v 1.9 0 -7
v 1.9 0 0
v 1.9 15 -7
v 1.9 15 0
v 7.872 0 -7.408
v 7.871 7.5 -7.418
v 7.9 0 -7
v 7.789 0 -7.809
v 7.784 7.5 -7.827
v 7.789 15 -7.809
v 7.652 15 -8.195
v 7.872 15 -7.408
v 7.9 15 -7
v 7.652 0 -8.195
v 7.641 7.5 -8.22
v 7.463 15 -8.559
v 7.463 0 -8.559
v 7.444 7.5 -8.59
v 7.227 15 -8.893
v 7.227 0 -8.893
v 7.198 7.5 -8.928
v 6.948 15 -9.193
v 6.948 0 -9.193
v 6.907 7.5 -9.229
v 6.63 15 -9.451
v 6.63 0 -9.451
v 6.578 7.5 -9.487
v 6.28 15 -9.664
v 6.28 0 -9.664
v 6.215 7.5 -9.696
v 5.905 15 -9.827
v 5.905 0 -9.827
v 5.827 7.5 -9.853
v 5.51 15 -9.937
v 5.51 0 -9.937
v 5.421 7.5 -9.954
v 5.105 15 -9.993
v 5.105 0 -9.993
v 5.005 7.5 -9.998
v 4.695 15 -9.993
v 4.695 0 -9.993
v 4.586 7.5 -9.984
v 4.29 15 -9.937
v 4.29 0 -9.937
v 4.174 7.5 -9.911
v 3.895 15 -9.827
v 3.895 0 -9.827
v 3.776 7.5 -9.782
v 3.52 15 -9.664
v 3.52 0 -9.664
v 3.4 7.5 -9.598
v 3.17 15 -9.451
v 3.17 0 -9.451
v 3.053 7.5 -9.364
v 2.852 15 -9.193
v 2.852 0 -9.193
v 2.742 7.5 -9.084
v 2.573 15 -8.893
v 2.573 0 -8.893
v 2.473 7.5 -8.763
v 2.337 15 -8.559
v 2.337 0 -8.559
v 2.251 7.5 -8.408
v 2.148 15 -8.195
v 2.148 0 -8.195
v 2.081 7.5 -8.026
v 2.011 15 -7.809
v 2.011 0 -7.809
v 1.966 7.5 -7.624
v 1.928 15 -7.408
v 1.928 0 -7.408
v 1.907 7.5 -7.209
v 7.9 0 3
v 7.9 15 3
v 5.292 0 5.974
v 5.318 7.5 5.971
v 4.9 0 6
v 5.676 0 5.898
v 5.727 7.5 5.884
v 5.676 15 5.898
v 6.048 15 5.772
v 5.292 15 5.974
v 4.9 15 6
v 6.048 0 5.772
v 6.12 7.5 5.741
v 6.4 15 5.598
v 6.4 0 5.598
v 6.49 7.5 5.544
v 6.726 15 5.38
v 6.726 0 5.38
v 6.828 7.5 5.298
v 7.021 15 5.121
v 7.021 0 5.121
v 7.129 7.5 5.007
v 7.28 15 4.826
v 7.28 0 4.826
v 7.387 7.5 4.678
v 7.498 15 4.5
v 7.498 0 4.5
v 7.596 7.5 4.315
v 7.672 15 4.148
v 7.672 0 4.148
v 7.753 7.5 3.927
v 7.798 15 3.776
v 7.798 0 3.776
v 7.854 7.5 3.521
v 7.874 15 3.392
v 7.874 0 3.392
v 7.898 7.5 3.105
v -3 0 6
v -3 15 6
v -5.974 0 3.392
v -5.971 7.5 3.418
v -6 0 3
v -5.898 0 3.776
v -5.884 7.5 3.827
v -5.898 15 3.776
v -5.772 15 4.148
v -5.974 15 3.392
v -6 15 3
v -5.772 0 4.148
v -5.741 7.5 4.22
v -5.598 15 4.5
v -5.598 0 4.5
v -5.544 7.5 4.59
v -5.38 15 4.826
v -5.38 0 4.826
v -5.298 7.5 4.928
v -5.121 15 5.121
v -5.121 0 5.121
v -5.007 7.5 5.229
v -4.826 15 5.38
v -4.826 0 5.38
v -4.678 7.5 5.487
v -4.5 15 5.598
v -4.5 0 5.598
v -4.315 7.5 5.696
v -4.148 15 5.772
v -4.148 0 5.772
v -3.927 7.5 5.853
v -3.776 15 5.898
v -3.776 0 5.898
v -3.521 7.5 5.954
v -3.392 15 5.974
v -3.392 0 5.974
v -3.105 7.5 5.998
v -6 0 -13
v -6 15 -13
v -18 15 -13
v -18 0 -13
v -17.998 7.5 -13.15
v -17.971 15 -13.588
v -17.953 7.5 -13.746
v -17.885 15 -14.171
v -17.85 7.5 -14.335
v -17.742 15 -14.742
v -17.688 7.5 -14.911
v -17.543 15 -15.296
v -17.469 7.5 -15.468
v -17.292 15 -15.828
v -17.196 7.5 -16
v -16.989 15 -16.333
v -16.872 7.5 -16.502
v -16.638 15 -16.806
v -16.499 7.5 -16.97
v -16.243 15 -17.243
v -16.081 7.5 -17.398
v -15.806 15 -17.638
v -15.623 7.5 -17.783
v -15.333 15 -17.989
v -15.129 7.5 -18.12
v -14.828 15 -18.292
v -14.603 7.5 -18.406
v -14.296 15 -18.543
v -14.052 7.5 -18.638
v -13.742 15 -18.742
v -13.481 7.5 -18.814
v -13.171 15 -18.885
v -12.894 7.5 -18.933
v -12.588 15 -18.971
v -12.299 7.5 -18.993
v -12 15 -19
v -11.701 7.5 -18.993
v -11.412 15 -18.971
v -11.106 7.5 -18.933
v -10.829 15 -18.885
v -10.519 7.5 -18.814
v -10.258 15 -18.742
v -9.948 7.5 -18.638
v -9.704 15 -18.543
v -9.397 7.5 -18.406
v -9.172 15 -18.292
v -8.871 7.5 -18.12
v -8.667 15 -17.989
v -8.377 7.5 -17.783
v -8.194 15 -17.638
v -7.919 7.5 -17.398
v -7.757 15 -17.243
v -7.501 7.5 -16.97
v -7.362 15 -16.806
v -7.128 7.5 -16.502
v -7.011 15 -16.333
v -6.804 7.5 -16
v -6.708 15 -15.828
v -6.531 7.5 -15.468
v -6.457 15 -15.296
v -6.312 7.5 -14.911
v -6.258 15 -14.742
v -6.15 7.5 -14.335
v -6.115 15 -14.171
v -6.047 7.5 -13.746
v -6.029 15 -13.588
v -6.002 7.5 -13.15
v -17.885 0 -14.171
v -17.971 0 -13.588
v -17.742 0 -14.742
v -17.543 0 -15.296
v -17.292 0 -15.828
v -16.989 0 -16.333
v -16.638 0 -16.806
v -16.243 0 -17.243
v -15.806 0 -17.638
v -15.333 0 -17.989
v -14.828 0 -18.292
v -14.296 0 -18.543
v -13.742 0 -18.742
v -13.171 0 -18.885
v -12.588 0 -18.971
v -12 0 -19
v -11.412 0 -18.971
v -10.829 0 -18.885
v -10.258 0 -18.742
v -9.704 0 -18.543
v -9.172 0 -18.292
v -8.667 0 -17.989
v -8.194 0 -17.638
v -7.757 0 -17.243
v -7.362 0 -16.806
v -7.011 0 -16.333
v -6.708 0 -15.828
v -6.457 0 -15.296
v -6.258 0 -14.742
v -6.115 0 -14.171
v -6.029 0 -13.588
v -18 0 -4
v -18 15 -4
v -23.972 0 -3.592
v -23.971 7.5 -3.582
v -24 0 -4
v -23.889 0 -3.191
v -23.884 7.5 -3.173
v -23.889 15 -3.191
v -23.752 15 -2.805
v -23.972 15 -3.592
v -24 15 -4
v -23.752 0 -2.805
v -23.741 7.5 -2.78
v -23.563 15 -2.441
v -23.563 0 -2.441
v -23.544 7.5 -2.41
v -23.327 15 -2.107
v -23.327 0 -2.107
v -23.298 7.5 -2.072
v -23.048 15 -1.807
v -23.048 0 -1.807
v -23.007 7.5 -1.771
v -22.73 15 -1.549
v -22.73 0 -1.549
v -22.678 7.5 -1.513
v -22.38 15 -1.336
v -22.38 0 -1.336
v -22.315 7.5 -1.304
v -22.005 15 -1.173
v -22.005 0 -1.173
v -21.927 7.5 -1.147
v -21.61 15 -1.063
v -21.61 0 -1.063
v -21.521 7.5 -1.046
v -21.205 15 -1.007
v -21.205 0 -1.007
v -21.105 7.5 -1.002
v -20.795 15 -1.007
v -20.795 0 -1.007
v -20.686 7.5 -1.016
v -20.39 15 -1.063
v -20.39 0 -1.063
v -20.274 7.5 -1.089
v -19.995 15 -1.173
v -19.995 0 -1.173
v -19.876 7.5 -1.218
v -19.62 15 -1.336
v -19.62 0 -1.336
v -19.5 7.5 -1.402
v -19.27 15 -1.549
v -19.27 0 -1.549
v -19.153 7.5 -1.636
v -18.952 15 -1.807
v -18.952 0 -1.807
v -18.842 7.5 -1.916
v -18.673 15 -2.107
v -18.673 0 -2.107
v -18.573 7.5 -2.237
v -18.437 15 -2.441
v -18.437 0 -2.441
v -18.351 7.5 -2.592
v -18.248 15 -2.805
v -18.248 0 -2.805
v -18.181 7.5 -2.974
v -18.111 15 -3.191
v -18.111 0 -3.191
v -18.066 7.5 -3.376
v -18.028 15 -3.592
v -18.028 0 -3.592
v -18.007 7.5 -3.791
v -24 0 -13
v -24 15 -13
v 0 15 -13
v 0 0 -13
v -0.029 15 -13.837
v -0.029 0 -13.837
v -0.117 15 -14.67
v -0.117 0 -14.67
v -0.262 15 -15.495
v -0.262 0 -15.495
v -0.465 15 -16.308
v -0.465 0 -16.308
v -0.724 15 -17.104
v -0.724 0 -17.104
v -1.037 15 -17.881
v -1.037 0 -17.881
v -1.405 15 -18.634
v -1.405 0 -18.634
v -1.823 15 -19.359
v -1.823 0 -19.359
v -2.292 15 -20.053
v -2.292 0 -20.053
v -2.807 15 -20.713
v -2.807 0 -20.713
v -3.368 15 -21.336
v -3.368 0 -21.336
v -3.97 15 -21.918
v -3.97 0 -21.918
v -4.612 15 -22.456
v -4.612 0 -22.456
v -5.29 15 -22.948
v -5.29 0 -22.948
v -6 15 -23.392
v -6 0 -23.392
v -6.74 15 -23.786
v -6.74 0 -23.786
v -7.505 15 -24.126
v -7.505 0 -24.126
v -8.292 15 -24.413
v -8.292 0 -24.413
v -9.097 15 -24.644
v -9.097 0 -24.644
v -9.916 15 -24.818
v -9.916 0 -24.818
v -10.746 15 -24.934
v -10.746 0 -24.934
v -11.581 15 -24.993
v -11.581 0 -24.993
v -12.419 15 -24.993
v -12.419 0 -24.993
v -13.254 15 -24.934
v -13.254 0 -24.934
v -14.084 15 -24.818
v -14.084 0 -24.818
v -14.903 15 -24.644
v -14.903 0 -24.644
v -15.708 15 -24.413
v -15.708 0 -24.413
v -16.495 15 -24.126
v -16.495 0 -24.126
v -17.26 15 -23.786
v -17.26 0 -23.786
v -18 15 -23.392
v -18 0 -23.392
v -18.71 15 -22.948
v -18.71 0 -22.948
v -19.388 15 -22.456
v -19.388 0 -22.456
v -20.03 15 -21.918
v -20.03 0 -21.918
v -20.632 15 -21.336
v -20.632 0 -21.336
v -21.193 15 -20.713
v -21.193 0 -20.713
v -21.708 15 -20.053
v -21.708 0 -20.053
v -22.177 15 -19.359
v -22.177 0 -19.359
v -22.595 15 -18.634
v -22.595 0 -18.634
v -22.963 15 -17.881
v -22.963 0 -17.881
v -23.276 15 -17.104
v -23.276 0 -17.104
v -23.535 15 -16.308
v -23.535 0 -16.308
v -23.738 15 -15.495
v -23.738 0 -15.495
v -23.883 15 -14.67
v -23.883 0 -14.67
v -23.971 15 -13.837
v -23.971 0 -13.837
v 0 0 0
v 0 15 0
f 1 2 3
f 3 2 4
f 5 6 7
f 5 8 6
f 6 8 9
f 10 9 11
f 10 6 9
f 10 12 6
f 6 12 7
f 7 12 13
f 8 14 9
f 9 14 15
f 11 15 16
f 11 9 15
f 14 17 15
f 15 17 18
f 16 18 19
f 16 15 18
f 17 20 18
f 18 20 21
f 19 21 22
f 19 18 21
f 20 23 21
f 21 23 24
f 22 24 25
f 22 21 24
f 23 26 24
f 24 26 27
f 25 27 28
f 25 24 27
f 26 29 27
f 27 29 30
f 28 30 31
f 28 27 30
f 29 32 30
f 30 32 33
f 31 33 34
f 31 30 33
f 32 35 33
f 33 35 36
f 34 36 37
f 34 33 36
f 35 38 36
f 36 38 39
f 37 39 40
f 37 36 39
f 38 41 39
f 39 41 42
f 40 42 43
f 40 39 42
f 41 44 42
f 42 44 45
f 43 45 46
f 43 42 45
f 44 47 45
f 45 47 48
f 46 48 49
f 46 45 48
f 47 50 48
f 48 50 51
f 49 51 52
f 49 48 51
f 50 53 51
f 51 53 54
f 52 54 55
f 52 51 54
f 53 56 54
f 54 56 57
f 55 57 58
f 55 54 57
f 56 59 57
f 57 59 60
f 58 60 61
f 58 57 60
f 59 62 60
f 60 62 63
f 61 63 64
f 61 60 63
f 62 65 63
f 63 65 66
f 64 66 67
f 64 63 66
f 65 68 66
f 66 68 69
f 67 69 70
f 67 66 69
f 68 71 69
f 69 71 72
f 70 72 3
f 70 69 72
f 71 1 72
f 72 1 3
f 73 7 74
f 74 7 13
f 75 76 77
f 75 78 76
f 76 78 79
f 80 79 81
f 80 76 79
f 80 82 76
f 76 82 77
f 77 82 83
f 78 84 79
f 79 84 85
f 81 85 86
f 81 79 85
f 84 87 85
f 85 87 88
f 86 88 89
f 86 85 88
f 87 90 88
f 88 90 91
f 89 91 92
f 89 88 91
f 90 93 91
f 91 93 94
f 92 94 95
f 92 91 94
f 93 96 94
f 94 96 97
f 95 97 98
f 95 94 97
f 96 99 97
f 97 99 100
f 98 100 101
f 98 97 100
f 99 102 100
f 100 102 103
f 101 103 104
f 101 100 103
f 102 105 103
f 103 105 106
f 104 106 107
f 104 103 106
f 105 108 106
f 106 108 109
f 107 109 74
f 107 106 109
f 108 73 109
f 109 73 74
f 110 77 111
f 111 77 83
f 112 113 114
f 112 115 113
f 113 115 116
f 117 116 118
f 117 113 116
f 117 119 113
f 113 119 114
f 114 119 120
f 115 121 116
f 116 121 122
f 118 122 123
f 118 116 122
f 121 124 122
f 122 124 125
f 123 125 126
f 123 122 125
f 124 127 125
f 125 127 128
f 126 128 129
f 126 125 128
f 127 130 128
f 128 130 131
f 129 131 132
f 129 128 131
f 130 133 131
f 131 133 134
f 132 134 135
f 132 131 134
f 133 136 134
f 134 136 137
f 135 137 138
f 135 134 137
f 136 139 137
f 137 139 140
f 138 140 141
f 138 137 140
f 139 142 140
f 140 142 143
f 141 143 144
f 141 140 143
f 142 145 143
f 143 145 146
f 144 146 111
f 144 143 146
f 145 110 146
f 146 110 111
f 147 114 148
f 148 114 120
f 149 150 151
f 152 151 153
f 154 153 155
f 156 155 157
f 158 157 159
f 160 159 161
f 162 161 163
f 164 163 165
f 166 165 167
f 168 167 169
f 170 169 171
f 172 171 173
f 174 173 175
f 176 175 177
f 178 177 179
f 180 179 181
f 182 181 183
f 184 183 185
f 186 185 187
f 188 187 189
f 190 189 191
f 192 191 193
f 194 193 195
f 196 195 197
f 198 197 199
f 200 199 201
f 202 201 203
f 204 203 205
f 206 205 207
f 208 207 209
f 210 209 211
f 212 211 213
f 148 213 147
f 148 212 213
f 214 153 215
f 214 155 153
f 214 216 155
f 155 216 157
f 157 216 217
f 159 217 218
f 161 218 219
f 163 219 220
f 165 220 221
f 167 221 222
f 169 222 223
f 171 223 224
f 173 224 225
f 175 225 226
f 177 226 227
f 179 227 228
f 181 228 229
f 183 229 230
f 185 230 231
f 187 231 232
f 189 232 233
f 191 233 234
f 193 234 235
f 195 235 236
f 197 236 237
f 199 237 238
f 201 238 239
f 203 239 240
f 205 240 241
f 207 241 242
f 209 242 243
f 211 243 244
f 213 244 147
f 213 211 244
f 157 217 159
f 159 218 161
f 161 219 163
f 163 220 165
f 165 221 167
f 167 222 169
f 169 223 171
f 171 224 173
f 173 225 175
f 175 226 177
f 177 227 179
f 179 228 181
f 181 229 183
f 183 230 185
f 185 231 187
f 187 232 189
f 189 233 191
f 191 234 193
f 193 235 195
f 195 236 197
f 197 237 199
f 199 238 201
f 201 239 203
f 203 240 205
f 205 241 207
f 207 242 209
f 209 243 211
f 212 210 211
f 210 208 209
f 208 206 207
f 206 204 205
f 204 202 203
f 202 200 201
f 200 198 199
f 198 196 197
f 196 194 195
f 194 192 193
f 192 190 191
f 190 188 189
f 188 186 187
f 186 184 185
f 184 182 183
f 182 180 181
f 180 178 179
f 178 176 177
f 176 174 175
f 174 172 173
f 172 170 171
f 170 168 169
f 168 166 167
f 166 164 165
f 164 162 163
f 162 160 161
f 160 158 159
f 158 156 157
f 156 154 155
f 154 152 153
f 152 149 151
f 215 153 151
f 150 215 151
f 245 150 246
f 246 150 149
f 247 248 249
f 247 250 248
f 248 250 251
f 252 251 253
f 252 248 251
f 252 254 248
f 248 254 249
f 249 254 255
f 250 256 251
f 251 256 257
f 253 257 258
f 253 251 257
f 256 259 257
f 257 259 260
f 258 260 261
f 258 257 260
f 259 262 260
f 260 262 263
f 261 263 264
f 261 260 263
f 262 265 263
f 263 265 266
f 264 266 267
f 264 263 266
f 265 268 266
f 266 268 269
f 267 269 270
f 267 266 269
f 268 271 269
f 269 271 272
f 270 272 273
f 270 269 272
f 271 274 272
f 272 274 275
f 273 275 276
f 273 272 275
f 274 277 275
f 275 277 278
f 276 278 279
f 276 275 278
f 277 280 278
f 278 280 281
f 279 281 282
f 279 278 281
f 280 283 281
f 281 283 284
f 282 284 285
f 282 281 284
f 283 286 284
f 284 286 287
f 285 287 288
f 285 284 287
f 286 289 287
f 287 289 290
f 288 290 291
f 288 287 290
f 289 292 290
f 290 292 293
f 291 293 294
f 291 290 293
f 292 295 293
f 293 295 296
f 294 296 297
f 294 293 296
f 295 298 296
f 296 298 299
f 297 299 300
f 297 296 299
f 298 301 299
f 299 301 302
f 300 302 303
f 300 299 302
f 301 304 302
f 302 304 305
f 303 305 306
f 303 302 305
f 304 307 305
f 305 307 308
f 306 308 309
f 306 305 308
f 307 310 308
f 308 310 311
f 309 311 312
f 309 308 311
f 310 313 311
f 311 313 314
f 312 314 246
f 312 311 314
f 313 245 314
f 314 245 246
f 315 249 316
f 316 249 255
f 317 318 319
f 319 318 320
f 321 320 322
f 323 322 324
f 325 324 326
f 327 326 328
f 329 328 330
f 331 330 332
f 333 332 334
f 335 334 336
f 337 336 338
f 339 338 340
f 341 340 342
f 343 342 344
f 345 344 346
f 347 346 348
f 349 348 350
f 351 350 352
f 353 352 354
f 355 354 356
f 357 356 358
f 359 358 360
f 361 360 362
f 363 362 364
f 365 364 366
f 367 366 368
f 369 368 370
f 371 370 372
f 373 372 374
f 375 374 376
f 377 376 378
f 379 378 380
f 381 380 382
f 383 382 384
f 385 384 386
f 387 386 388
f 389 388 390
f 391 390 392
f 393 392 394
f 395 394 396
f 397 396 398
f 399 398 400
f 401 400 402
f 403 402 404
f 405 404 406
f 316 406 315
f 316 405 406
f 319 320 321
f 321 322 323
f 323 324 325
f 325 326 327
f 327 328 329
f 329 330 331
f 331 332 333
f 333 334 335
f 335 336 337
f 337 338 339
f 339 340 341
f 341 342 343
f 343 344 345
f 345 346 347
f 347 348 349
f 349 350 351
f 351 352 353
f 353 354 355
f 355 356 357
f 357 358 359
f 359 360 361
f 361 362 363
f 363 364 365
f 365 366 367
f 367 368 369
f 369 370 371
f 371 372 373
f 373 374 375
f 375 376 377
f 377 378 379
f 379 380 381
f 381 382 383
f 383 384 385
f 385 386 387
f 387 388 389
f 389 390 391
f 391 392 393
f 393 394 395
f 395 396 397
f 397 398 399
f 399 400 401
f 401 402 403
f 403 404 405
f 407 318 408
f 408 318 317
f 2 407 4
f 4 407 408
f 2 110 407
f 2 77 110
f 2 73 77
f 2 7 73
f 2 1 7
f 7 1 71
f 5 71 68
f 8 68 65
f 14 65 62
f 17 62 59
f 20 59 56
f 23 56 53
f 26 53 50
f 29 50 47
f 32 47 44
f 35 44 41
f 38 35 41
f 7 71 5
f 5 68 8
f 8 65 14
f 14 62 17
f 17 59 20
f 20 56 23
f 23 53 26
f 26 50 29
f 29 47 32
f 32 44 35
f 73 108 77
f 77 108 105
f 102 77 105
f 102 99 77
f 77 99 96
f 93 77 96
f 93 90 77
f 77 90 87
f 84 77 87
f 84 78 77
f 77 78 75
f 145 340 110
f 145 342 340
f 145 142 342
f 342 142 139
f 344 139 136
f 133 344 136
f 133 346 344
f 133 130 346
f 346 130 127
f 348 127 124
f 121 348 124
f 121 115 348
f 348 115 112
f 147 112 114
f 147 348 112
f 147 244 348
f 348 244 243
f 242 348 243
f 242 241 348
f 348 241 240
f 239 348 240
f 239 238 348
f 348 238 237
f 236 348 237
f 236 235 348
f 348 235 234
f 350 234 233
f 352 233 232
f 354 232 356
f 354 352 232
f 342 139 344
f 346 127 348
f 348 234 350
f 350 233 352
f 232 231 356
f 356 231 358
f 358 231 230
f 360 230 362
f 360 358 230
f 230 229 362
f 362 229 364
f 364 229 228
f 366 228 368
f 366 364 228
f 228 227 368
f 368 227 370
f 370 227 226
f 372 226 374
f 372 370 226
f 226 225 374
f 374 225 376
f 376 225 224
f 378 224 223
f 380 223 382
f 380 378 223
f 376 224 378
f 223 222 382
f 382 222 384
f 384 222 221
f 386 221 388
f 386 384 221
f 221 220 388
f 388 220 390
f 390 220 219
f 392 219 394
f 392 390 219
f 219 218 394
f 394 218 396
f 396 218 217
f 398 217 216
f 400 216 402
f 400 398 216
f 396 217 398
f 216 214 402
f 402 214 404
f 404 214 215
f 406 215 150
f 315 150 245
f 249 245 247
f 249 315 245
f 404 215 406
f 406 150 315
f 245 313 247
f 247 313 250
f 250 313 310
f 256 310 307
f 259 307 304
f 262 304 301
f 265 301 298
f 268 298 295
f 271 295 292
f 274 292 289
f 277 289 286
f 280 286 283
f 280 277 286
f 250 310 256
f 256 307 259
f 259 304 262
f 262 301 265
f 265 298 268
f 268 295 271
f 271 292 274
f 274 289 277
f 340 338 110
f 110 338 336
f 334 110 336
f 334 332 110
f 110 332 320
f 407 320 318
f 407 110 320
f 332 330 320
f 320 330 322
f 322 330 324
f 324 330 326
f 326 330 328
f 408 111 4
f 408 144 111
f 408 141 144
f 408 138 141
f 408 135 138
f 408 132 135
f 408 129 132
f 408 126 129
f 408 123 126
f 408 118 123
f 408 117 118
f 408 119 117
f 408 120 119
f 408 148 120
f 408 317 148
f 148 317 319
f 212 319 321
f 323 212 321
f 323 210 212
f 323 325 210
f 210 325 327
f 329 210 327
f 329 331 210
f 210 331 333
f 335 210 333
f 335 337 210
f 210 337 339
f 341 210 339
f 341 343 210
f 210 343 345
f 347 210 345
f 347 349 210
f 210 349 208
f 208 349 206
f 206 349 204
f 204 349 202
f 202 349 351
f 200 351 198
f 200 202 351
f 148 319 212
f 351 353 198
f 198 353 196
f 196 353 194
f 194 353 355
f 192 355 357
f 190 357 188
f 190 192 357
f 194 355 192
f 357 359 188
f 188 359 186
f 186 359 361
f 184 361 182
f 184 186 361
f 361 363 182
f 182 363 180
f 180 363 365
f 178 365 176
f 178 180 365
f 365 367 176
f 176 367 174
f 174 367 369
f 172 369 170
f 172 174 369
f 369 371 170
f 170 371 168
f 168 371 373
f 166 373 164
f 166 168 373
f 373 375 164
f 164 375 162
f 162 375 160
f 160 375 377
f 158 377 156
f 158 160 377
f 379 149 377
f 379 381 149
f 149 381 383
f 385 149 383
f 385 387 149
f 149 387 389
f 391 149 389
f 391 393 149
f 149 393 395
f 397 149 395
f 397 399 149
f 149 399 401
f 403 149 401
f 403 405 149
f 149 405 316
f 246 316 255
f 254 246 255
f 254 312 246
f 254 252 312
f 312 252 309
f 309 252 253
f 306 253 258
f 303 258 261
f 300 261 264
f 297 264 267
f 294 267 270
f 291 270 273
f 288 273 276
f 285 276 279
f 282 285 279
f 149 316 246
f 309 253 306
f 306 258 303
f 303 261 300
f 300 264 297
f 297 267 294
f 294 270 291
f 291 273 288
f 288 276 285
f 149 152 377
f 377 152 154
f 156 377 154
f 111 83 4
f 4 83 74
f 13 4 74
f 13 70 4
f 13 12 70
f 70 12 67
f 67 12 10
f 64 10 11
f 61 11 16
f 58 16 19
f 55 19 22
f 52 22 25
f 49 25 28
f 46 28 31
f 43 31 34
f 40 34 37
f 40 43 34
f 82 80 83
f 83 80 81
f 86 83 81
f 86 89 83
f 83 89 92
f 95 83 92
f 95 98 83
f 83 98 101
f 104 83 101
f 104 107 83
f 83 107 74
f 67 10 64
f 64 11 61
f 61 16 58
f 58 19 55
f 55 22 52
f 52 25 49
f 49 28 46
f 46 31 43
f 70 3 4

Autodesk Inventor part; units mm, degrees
ref_plane "YZ Plane" through (0, 0, 0) normal (1, 0, 0) x (0, 1, 0)
ref_plane "XZ Plane" through (0, 0, 0) normal (0, 1, 0) x (-1, 0, 0)
ref_plane "XY Plane" through (0, 0, 0) normal (0, 0, 1) x (1, 0, 0)
sketch "Sketch1" plane through (0, 0, 0) normal (0, 1, 0) x (-1, 0, 0)
  line L0 (0, 0) -> (-1.9, 0)
  line L1 (-1.9, 0) -> (-1.9, -7)
  line L2 (-4.9, -10) -> (-4.9, -10)
  line L3 (-7.9, -7) -> (-7.9, 3)
  line L4 (-4.9, 6) -> (3, 6)
  line L5 (0, 0) -> (0, -13)
  line L6 (12, -25) -> (12, -25)
  line L7 (24, -13) -> (24, -4)
  line L8 (21, -1) -> (21, -1)
  line L9 (18, -4) -> (18, -13)
  line L10 (12, -19) -> (12, -19)
  line L11 (6, -13) -> (6, 3)
  arc A0 (6, -13) -> (12, -19) centre (12, -13) ccw
  arc A1 (12, -19) -> (18, -13) centre (12, -13) ccw
  arc A2 (0, -13) -> (12, -25) centre (12, -13) ccw
  arc A3 (12, -25) -> (24, -13) centre (12, -13) ccw
  arc A4 (-4.9, 6) -> (-7.9, 3) centre (-4.9, 3) ccw
  arc A5 (6, 3) -> (3, 6) centre (3, 3) ccw
  arc A6 (-4.9, -10) -> (-1.9, -7) centre (-4.9, -7) ccw
  arc A7 (-7.9, -7) -> (-4.9, -10) centre (-4.9, -7) ccw
  arc A8 (24, -4) -> (21, -1) centre (21, -4) ccw
  arc A9 (21, -1) -> (18, -4) centre (21, -4) ccw
  point P0 (-1.9, -10)
  point P1 (-7.9, -10)
  point P2 (-7.9, 6)
  point P3 (6, 6)
  point P4 (0, -25)
  point P5 (24, -25)
  point P6 (24, -1)
  point P7 (18, -1)
  point P8 (18, -19)
  point P9 (6, -19)
  dimension "d0" = 1.9
  dimension "d1" = 10
  dimension "d2" = 6
  dimension "d3" = 16
  dimension "d4" = 6
  dimension "d5" = 25
  dimension "d6" = 24
  dimension "d7" = 24
  dimension "d8" = 6
  dimension "d9" = 18
  dimension "d10" = 12
  dimension "d11" = 6
  dimension "d12" = 12
  dimension "d13" = 3
extrude "Extrusion1" add sketch "Sketch1" along normal blind 15
properties part number "Percha"
